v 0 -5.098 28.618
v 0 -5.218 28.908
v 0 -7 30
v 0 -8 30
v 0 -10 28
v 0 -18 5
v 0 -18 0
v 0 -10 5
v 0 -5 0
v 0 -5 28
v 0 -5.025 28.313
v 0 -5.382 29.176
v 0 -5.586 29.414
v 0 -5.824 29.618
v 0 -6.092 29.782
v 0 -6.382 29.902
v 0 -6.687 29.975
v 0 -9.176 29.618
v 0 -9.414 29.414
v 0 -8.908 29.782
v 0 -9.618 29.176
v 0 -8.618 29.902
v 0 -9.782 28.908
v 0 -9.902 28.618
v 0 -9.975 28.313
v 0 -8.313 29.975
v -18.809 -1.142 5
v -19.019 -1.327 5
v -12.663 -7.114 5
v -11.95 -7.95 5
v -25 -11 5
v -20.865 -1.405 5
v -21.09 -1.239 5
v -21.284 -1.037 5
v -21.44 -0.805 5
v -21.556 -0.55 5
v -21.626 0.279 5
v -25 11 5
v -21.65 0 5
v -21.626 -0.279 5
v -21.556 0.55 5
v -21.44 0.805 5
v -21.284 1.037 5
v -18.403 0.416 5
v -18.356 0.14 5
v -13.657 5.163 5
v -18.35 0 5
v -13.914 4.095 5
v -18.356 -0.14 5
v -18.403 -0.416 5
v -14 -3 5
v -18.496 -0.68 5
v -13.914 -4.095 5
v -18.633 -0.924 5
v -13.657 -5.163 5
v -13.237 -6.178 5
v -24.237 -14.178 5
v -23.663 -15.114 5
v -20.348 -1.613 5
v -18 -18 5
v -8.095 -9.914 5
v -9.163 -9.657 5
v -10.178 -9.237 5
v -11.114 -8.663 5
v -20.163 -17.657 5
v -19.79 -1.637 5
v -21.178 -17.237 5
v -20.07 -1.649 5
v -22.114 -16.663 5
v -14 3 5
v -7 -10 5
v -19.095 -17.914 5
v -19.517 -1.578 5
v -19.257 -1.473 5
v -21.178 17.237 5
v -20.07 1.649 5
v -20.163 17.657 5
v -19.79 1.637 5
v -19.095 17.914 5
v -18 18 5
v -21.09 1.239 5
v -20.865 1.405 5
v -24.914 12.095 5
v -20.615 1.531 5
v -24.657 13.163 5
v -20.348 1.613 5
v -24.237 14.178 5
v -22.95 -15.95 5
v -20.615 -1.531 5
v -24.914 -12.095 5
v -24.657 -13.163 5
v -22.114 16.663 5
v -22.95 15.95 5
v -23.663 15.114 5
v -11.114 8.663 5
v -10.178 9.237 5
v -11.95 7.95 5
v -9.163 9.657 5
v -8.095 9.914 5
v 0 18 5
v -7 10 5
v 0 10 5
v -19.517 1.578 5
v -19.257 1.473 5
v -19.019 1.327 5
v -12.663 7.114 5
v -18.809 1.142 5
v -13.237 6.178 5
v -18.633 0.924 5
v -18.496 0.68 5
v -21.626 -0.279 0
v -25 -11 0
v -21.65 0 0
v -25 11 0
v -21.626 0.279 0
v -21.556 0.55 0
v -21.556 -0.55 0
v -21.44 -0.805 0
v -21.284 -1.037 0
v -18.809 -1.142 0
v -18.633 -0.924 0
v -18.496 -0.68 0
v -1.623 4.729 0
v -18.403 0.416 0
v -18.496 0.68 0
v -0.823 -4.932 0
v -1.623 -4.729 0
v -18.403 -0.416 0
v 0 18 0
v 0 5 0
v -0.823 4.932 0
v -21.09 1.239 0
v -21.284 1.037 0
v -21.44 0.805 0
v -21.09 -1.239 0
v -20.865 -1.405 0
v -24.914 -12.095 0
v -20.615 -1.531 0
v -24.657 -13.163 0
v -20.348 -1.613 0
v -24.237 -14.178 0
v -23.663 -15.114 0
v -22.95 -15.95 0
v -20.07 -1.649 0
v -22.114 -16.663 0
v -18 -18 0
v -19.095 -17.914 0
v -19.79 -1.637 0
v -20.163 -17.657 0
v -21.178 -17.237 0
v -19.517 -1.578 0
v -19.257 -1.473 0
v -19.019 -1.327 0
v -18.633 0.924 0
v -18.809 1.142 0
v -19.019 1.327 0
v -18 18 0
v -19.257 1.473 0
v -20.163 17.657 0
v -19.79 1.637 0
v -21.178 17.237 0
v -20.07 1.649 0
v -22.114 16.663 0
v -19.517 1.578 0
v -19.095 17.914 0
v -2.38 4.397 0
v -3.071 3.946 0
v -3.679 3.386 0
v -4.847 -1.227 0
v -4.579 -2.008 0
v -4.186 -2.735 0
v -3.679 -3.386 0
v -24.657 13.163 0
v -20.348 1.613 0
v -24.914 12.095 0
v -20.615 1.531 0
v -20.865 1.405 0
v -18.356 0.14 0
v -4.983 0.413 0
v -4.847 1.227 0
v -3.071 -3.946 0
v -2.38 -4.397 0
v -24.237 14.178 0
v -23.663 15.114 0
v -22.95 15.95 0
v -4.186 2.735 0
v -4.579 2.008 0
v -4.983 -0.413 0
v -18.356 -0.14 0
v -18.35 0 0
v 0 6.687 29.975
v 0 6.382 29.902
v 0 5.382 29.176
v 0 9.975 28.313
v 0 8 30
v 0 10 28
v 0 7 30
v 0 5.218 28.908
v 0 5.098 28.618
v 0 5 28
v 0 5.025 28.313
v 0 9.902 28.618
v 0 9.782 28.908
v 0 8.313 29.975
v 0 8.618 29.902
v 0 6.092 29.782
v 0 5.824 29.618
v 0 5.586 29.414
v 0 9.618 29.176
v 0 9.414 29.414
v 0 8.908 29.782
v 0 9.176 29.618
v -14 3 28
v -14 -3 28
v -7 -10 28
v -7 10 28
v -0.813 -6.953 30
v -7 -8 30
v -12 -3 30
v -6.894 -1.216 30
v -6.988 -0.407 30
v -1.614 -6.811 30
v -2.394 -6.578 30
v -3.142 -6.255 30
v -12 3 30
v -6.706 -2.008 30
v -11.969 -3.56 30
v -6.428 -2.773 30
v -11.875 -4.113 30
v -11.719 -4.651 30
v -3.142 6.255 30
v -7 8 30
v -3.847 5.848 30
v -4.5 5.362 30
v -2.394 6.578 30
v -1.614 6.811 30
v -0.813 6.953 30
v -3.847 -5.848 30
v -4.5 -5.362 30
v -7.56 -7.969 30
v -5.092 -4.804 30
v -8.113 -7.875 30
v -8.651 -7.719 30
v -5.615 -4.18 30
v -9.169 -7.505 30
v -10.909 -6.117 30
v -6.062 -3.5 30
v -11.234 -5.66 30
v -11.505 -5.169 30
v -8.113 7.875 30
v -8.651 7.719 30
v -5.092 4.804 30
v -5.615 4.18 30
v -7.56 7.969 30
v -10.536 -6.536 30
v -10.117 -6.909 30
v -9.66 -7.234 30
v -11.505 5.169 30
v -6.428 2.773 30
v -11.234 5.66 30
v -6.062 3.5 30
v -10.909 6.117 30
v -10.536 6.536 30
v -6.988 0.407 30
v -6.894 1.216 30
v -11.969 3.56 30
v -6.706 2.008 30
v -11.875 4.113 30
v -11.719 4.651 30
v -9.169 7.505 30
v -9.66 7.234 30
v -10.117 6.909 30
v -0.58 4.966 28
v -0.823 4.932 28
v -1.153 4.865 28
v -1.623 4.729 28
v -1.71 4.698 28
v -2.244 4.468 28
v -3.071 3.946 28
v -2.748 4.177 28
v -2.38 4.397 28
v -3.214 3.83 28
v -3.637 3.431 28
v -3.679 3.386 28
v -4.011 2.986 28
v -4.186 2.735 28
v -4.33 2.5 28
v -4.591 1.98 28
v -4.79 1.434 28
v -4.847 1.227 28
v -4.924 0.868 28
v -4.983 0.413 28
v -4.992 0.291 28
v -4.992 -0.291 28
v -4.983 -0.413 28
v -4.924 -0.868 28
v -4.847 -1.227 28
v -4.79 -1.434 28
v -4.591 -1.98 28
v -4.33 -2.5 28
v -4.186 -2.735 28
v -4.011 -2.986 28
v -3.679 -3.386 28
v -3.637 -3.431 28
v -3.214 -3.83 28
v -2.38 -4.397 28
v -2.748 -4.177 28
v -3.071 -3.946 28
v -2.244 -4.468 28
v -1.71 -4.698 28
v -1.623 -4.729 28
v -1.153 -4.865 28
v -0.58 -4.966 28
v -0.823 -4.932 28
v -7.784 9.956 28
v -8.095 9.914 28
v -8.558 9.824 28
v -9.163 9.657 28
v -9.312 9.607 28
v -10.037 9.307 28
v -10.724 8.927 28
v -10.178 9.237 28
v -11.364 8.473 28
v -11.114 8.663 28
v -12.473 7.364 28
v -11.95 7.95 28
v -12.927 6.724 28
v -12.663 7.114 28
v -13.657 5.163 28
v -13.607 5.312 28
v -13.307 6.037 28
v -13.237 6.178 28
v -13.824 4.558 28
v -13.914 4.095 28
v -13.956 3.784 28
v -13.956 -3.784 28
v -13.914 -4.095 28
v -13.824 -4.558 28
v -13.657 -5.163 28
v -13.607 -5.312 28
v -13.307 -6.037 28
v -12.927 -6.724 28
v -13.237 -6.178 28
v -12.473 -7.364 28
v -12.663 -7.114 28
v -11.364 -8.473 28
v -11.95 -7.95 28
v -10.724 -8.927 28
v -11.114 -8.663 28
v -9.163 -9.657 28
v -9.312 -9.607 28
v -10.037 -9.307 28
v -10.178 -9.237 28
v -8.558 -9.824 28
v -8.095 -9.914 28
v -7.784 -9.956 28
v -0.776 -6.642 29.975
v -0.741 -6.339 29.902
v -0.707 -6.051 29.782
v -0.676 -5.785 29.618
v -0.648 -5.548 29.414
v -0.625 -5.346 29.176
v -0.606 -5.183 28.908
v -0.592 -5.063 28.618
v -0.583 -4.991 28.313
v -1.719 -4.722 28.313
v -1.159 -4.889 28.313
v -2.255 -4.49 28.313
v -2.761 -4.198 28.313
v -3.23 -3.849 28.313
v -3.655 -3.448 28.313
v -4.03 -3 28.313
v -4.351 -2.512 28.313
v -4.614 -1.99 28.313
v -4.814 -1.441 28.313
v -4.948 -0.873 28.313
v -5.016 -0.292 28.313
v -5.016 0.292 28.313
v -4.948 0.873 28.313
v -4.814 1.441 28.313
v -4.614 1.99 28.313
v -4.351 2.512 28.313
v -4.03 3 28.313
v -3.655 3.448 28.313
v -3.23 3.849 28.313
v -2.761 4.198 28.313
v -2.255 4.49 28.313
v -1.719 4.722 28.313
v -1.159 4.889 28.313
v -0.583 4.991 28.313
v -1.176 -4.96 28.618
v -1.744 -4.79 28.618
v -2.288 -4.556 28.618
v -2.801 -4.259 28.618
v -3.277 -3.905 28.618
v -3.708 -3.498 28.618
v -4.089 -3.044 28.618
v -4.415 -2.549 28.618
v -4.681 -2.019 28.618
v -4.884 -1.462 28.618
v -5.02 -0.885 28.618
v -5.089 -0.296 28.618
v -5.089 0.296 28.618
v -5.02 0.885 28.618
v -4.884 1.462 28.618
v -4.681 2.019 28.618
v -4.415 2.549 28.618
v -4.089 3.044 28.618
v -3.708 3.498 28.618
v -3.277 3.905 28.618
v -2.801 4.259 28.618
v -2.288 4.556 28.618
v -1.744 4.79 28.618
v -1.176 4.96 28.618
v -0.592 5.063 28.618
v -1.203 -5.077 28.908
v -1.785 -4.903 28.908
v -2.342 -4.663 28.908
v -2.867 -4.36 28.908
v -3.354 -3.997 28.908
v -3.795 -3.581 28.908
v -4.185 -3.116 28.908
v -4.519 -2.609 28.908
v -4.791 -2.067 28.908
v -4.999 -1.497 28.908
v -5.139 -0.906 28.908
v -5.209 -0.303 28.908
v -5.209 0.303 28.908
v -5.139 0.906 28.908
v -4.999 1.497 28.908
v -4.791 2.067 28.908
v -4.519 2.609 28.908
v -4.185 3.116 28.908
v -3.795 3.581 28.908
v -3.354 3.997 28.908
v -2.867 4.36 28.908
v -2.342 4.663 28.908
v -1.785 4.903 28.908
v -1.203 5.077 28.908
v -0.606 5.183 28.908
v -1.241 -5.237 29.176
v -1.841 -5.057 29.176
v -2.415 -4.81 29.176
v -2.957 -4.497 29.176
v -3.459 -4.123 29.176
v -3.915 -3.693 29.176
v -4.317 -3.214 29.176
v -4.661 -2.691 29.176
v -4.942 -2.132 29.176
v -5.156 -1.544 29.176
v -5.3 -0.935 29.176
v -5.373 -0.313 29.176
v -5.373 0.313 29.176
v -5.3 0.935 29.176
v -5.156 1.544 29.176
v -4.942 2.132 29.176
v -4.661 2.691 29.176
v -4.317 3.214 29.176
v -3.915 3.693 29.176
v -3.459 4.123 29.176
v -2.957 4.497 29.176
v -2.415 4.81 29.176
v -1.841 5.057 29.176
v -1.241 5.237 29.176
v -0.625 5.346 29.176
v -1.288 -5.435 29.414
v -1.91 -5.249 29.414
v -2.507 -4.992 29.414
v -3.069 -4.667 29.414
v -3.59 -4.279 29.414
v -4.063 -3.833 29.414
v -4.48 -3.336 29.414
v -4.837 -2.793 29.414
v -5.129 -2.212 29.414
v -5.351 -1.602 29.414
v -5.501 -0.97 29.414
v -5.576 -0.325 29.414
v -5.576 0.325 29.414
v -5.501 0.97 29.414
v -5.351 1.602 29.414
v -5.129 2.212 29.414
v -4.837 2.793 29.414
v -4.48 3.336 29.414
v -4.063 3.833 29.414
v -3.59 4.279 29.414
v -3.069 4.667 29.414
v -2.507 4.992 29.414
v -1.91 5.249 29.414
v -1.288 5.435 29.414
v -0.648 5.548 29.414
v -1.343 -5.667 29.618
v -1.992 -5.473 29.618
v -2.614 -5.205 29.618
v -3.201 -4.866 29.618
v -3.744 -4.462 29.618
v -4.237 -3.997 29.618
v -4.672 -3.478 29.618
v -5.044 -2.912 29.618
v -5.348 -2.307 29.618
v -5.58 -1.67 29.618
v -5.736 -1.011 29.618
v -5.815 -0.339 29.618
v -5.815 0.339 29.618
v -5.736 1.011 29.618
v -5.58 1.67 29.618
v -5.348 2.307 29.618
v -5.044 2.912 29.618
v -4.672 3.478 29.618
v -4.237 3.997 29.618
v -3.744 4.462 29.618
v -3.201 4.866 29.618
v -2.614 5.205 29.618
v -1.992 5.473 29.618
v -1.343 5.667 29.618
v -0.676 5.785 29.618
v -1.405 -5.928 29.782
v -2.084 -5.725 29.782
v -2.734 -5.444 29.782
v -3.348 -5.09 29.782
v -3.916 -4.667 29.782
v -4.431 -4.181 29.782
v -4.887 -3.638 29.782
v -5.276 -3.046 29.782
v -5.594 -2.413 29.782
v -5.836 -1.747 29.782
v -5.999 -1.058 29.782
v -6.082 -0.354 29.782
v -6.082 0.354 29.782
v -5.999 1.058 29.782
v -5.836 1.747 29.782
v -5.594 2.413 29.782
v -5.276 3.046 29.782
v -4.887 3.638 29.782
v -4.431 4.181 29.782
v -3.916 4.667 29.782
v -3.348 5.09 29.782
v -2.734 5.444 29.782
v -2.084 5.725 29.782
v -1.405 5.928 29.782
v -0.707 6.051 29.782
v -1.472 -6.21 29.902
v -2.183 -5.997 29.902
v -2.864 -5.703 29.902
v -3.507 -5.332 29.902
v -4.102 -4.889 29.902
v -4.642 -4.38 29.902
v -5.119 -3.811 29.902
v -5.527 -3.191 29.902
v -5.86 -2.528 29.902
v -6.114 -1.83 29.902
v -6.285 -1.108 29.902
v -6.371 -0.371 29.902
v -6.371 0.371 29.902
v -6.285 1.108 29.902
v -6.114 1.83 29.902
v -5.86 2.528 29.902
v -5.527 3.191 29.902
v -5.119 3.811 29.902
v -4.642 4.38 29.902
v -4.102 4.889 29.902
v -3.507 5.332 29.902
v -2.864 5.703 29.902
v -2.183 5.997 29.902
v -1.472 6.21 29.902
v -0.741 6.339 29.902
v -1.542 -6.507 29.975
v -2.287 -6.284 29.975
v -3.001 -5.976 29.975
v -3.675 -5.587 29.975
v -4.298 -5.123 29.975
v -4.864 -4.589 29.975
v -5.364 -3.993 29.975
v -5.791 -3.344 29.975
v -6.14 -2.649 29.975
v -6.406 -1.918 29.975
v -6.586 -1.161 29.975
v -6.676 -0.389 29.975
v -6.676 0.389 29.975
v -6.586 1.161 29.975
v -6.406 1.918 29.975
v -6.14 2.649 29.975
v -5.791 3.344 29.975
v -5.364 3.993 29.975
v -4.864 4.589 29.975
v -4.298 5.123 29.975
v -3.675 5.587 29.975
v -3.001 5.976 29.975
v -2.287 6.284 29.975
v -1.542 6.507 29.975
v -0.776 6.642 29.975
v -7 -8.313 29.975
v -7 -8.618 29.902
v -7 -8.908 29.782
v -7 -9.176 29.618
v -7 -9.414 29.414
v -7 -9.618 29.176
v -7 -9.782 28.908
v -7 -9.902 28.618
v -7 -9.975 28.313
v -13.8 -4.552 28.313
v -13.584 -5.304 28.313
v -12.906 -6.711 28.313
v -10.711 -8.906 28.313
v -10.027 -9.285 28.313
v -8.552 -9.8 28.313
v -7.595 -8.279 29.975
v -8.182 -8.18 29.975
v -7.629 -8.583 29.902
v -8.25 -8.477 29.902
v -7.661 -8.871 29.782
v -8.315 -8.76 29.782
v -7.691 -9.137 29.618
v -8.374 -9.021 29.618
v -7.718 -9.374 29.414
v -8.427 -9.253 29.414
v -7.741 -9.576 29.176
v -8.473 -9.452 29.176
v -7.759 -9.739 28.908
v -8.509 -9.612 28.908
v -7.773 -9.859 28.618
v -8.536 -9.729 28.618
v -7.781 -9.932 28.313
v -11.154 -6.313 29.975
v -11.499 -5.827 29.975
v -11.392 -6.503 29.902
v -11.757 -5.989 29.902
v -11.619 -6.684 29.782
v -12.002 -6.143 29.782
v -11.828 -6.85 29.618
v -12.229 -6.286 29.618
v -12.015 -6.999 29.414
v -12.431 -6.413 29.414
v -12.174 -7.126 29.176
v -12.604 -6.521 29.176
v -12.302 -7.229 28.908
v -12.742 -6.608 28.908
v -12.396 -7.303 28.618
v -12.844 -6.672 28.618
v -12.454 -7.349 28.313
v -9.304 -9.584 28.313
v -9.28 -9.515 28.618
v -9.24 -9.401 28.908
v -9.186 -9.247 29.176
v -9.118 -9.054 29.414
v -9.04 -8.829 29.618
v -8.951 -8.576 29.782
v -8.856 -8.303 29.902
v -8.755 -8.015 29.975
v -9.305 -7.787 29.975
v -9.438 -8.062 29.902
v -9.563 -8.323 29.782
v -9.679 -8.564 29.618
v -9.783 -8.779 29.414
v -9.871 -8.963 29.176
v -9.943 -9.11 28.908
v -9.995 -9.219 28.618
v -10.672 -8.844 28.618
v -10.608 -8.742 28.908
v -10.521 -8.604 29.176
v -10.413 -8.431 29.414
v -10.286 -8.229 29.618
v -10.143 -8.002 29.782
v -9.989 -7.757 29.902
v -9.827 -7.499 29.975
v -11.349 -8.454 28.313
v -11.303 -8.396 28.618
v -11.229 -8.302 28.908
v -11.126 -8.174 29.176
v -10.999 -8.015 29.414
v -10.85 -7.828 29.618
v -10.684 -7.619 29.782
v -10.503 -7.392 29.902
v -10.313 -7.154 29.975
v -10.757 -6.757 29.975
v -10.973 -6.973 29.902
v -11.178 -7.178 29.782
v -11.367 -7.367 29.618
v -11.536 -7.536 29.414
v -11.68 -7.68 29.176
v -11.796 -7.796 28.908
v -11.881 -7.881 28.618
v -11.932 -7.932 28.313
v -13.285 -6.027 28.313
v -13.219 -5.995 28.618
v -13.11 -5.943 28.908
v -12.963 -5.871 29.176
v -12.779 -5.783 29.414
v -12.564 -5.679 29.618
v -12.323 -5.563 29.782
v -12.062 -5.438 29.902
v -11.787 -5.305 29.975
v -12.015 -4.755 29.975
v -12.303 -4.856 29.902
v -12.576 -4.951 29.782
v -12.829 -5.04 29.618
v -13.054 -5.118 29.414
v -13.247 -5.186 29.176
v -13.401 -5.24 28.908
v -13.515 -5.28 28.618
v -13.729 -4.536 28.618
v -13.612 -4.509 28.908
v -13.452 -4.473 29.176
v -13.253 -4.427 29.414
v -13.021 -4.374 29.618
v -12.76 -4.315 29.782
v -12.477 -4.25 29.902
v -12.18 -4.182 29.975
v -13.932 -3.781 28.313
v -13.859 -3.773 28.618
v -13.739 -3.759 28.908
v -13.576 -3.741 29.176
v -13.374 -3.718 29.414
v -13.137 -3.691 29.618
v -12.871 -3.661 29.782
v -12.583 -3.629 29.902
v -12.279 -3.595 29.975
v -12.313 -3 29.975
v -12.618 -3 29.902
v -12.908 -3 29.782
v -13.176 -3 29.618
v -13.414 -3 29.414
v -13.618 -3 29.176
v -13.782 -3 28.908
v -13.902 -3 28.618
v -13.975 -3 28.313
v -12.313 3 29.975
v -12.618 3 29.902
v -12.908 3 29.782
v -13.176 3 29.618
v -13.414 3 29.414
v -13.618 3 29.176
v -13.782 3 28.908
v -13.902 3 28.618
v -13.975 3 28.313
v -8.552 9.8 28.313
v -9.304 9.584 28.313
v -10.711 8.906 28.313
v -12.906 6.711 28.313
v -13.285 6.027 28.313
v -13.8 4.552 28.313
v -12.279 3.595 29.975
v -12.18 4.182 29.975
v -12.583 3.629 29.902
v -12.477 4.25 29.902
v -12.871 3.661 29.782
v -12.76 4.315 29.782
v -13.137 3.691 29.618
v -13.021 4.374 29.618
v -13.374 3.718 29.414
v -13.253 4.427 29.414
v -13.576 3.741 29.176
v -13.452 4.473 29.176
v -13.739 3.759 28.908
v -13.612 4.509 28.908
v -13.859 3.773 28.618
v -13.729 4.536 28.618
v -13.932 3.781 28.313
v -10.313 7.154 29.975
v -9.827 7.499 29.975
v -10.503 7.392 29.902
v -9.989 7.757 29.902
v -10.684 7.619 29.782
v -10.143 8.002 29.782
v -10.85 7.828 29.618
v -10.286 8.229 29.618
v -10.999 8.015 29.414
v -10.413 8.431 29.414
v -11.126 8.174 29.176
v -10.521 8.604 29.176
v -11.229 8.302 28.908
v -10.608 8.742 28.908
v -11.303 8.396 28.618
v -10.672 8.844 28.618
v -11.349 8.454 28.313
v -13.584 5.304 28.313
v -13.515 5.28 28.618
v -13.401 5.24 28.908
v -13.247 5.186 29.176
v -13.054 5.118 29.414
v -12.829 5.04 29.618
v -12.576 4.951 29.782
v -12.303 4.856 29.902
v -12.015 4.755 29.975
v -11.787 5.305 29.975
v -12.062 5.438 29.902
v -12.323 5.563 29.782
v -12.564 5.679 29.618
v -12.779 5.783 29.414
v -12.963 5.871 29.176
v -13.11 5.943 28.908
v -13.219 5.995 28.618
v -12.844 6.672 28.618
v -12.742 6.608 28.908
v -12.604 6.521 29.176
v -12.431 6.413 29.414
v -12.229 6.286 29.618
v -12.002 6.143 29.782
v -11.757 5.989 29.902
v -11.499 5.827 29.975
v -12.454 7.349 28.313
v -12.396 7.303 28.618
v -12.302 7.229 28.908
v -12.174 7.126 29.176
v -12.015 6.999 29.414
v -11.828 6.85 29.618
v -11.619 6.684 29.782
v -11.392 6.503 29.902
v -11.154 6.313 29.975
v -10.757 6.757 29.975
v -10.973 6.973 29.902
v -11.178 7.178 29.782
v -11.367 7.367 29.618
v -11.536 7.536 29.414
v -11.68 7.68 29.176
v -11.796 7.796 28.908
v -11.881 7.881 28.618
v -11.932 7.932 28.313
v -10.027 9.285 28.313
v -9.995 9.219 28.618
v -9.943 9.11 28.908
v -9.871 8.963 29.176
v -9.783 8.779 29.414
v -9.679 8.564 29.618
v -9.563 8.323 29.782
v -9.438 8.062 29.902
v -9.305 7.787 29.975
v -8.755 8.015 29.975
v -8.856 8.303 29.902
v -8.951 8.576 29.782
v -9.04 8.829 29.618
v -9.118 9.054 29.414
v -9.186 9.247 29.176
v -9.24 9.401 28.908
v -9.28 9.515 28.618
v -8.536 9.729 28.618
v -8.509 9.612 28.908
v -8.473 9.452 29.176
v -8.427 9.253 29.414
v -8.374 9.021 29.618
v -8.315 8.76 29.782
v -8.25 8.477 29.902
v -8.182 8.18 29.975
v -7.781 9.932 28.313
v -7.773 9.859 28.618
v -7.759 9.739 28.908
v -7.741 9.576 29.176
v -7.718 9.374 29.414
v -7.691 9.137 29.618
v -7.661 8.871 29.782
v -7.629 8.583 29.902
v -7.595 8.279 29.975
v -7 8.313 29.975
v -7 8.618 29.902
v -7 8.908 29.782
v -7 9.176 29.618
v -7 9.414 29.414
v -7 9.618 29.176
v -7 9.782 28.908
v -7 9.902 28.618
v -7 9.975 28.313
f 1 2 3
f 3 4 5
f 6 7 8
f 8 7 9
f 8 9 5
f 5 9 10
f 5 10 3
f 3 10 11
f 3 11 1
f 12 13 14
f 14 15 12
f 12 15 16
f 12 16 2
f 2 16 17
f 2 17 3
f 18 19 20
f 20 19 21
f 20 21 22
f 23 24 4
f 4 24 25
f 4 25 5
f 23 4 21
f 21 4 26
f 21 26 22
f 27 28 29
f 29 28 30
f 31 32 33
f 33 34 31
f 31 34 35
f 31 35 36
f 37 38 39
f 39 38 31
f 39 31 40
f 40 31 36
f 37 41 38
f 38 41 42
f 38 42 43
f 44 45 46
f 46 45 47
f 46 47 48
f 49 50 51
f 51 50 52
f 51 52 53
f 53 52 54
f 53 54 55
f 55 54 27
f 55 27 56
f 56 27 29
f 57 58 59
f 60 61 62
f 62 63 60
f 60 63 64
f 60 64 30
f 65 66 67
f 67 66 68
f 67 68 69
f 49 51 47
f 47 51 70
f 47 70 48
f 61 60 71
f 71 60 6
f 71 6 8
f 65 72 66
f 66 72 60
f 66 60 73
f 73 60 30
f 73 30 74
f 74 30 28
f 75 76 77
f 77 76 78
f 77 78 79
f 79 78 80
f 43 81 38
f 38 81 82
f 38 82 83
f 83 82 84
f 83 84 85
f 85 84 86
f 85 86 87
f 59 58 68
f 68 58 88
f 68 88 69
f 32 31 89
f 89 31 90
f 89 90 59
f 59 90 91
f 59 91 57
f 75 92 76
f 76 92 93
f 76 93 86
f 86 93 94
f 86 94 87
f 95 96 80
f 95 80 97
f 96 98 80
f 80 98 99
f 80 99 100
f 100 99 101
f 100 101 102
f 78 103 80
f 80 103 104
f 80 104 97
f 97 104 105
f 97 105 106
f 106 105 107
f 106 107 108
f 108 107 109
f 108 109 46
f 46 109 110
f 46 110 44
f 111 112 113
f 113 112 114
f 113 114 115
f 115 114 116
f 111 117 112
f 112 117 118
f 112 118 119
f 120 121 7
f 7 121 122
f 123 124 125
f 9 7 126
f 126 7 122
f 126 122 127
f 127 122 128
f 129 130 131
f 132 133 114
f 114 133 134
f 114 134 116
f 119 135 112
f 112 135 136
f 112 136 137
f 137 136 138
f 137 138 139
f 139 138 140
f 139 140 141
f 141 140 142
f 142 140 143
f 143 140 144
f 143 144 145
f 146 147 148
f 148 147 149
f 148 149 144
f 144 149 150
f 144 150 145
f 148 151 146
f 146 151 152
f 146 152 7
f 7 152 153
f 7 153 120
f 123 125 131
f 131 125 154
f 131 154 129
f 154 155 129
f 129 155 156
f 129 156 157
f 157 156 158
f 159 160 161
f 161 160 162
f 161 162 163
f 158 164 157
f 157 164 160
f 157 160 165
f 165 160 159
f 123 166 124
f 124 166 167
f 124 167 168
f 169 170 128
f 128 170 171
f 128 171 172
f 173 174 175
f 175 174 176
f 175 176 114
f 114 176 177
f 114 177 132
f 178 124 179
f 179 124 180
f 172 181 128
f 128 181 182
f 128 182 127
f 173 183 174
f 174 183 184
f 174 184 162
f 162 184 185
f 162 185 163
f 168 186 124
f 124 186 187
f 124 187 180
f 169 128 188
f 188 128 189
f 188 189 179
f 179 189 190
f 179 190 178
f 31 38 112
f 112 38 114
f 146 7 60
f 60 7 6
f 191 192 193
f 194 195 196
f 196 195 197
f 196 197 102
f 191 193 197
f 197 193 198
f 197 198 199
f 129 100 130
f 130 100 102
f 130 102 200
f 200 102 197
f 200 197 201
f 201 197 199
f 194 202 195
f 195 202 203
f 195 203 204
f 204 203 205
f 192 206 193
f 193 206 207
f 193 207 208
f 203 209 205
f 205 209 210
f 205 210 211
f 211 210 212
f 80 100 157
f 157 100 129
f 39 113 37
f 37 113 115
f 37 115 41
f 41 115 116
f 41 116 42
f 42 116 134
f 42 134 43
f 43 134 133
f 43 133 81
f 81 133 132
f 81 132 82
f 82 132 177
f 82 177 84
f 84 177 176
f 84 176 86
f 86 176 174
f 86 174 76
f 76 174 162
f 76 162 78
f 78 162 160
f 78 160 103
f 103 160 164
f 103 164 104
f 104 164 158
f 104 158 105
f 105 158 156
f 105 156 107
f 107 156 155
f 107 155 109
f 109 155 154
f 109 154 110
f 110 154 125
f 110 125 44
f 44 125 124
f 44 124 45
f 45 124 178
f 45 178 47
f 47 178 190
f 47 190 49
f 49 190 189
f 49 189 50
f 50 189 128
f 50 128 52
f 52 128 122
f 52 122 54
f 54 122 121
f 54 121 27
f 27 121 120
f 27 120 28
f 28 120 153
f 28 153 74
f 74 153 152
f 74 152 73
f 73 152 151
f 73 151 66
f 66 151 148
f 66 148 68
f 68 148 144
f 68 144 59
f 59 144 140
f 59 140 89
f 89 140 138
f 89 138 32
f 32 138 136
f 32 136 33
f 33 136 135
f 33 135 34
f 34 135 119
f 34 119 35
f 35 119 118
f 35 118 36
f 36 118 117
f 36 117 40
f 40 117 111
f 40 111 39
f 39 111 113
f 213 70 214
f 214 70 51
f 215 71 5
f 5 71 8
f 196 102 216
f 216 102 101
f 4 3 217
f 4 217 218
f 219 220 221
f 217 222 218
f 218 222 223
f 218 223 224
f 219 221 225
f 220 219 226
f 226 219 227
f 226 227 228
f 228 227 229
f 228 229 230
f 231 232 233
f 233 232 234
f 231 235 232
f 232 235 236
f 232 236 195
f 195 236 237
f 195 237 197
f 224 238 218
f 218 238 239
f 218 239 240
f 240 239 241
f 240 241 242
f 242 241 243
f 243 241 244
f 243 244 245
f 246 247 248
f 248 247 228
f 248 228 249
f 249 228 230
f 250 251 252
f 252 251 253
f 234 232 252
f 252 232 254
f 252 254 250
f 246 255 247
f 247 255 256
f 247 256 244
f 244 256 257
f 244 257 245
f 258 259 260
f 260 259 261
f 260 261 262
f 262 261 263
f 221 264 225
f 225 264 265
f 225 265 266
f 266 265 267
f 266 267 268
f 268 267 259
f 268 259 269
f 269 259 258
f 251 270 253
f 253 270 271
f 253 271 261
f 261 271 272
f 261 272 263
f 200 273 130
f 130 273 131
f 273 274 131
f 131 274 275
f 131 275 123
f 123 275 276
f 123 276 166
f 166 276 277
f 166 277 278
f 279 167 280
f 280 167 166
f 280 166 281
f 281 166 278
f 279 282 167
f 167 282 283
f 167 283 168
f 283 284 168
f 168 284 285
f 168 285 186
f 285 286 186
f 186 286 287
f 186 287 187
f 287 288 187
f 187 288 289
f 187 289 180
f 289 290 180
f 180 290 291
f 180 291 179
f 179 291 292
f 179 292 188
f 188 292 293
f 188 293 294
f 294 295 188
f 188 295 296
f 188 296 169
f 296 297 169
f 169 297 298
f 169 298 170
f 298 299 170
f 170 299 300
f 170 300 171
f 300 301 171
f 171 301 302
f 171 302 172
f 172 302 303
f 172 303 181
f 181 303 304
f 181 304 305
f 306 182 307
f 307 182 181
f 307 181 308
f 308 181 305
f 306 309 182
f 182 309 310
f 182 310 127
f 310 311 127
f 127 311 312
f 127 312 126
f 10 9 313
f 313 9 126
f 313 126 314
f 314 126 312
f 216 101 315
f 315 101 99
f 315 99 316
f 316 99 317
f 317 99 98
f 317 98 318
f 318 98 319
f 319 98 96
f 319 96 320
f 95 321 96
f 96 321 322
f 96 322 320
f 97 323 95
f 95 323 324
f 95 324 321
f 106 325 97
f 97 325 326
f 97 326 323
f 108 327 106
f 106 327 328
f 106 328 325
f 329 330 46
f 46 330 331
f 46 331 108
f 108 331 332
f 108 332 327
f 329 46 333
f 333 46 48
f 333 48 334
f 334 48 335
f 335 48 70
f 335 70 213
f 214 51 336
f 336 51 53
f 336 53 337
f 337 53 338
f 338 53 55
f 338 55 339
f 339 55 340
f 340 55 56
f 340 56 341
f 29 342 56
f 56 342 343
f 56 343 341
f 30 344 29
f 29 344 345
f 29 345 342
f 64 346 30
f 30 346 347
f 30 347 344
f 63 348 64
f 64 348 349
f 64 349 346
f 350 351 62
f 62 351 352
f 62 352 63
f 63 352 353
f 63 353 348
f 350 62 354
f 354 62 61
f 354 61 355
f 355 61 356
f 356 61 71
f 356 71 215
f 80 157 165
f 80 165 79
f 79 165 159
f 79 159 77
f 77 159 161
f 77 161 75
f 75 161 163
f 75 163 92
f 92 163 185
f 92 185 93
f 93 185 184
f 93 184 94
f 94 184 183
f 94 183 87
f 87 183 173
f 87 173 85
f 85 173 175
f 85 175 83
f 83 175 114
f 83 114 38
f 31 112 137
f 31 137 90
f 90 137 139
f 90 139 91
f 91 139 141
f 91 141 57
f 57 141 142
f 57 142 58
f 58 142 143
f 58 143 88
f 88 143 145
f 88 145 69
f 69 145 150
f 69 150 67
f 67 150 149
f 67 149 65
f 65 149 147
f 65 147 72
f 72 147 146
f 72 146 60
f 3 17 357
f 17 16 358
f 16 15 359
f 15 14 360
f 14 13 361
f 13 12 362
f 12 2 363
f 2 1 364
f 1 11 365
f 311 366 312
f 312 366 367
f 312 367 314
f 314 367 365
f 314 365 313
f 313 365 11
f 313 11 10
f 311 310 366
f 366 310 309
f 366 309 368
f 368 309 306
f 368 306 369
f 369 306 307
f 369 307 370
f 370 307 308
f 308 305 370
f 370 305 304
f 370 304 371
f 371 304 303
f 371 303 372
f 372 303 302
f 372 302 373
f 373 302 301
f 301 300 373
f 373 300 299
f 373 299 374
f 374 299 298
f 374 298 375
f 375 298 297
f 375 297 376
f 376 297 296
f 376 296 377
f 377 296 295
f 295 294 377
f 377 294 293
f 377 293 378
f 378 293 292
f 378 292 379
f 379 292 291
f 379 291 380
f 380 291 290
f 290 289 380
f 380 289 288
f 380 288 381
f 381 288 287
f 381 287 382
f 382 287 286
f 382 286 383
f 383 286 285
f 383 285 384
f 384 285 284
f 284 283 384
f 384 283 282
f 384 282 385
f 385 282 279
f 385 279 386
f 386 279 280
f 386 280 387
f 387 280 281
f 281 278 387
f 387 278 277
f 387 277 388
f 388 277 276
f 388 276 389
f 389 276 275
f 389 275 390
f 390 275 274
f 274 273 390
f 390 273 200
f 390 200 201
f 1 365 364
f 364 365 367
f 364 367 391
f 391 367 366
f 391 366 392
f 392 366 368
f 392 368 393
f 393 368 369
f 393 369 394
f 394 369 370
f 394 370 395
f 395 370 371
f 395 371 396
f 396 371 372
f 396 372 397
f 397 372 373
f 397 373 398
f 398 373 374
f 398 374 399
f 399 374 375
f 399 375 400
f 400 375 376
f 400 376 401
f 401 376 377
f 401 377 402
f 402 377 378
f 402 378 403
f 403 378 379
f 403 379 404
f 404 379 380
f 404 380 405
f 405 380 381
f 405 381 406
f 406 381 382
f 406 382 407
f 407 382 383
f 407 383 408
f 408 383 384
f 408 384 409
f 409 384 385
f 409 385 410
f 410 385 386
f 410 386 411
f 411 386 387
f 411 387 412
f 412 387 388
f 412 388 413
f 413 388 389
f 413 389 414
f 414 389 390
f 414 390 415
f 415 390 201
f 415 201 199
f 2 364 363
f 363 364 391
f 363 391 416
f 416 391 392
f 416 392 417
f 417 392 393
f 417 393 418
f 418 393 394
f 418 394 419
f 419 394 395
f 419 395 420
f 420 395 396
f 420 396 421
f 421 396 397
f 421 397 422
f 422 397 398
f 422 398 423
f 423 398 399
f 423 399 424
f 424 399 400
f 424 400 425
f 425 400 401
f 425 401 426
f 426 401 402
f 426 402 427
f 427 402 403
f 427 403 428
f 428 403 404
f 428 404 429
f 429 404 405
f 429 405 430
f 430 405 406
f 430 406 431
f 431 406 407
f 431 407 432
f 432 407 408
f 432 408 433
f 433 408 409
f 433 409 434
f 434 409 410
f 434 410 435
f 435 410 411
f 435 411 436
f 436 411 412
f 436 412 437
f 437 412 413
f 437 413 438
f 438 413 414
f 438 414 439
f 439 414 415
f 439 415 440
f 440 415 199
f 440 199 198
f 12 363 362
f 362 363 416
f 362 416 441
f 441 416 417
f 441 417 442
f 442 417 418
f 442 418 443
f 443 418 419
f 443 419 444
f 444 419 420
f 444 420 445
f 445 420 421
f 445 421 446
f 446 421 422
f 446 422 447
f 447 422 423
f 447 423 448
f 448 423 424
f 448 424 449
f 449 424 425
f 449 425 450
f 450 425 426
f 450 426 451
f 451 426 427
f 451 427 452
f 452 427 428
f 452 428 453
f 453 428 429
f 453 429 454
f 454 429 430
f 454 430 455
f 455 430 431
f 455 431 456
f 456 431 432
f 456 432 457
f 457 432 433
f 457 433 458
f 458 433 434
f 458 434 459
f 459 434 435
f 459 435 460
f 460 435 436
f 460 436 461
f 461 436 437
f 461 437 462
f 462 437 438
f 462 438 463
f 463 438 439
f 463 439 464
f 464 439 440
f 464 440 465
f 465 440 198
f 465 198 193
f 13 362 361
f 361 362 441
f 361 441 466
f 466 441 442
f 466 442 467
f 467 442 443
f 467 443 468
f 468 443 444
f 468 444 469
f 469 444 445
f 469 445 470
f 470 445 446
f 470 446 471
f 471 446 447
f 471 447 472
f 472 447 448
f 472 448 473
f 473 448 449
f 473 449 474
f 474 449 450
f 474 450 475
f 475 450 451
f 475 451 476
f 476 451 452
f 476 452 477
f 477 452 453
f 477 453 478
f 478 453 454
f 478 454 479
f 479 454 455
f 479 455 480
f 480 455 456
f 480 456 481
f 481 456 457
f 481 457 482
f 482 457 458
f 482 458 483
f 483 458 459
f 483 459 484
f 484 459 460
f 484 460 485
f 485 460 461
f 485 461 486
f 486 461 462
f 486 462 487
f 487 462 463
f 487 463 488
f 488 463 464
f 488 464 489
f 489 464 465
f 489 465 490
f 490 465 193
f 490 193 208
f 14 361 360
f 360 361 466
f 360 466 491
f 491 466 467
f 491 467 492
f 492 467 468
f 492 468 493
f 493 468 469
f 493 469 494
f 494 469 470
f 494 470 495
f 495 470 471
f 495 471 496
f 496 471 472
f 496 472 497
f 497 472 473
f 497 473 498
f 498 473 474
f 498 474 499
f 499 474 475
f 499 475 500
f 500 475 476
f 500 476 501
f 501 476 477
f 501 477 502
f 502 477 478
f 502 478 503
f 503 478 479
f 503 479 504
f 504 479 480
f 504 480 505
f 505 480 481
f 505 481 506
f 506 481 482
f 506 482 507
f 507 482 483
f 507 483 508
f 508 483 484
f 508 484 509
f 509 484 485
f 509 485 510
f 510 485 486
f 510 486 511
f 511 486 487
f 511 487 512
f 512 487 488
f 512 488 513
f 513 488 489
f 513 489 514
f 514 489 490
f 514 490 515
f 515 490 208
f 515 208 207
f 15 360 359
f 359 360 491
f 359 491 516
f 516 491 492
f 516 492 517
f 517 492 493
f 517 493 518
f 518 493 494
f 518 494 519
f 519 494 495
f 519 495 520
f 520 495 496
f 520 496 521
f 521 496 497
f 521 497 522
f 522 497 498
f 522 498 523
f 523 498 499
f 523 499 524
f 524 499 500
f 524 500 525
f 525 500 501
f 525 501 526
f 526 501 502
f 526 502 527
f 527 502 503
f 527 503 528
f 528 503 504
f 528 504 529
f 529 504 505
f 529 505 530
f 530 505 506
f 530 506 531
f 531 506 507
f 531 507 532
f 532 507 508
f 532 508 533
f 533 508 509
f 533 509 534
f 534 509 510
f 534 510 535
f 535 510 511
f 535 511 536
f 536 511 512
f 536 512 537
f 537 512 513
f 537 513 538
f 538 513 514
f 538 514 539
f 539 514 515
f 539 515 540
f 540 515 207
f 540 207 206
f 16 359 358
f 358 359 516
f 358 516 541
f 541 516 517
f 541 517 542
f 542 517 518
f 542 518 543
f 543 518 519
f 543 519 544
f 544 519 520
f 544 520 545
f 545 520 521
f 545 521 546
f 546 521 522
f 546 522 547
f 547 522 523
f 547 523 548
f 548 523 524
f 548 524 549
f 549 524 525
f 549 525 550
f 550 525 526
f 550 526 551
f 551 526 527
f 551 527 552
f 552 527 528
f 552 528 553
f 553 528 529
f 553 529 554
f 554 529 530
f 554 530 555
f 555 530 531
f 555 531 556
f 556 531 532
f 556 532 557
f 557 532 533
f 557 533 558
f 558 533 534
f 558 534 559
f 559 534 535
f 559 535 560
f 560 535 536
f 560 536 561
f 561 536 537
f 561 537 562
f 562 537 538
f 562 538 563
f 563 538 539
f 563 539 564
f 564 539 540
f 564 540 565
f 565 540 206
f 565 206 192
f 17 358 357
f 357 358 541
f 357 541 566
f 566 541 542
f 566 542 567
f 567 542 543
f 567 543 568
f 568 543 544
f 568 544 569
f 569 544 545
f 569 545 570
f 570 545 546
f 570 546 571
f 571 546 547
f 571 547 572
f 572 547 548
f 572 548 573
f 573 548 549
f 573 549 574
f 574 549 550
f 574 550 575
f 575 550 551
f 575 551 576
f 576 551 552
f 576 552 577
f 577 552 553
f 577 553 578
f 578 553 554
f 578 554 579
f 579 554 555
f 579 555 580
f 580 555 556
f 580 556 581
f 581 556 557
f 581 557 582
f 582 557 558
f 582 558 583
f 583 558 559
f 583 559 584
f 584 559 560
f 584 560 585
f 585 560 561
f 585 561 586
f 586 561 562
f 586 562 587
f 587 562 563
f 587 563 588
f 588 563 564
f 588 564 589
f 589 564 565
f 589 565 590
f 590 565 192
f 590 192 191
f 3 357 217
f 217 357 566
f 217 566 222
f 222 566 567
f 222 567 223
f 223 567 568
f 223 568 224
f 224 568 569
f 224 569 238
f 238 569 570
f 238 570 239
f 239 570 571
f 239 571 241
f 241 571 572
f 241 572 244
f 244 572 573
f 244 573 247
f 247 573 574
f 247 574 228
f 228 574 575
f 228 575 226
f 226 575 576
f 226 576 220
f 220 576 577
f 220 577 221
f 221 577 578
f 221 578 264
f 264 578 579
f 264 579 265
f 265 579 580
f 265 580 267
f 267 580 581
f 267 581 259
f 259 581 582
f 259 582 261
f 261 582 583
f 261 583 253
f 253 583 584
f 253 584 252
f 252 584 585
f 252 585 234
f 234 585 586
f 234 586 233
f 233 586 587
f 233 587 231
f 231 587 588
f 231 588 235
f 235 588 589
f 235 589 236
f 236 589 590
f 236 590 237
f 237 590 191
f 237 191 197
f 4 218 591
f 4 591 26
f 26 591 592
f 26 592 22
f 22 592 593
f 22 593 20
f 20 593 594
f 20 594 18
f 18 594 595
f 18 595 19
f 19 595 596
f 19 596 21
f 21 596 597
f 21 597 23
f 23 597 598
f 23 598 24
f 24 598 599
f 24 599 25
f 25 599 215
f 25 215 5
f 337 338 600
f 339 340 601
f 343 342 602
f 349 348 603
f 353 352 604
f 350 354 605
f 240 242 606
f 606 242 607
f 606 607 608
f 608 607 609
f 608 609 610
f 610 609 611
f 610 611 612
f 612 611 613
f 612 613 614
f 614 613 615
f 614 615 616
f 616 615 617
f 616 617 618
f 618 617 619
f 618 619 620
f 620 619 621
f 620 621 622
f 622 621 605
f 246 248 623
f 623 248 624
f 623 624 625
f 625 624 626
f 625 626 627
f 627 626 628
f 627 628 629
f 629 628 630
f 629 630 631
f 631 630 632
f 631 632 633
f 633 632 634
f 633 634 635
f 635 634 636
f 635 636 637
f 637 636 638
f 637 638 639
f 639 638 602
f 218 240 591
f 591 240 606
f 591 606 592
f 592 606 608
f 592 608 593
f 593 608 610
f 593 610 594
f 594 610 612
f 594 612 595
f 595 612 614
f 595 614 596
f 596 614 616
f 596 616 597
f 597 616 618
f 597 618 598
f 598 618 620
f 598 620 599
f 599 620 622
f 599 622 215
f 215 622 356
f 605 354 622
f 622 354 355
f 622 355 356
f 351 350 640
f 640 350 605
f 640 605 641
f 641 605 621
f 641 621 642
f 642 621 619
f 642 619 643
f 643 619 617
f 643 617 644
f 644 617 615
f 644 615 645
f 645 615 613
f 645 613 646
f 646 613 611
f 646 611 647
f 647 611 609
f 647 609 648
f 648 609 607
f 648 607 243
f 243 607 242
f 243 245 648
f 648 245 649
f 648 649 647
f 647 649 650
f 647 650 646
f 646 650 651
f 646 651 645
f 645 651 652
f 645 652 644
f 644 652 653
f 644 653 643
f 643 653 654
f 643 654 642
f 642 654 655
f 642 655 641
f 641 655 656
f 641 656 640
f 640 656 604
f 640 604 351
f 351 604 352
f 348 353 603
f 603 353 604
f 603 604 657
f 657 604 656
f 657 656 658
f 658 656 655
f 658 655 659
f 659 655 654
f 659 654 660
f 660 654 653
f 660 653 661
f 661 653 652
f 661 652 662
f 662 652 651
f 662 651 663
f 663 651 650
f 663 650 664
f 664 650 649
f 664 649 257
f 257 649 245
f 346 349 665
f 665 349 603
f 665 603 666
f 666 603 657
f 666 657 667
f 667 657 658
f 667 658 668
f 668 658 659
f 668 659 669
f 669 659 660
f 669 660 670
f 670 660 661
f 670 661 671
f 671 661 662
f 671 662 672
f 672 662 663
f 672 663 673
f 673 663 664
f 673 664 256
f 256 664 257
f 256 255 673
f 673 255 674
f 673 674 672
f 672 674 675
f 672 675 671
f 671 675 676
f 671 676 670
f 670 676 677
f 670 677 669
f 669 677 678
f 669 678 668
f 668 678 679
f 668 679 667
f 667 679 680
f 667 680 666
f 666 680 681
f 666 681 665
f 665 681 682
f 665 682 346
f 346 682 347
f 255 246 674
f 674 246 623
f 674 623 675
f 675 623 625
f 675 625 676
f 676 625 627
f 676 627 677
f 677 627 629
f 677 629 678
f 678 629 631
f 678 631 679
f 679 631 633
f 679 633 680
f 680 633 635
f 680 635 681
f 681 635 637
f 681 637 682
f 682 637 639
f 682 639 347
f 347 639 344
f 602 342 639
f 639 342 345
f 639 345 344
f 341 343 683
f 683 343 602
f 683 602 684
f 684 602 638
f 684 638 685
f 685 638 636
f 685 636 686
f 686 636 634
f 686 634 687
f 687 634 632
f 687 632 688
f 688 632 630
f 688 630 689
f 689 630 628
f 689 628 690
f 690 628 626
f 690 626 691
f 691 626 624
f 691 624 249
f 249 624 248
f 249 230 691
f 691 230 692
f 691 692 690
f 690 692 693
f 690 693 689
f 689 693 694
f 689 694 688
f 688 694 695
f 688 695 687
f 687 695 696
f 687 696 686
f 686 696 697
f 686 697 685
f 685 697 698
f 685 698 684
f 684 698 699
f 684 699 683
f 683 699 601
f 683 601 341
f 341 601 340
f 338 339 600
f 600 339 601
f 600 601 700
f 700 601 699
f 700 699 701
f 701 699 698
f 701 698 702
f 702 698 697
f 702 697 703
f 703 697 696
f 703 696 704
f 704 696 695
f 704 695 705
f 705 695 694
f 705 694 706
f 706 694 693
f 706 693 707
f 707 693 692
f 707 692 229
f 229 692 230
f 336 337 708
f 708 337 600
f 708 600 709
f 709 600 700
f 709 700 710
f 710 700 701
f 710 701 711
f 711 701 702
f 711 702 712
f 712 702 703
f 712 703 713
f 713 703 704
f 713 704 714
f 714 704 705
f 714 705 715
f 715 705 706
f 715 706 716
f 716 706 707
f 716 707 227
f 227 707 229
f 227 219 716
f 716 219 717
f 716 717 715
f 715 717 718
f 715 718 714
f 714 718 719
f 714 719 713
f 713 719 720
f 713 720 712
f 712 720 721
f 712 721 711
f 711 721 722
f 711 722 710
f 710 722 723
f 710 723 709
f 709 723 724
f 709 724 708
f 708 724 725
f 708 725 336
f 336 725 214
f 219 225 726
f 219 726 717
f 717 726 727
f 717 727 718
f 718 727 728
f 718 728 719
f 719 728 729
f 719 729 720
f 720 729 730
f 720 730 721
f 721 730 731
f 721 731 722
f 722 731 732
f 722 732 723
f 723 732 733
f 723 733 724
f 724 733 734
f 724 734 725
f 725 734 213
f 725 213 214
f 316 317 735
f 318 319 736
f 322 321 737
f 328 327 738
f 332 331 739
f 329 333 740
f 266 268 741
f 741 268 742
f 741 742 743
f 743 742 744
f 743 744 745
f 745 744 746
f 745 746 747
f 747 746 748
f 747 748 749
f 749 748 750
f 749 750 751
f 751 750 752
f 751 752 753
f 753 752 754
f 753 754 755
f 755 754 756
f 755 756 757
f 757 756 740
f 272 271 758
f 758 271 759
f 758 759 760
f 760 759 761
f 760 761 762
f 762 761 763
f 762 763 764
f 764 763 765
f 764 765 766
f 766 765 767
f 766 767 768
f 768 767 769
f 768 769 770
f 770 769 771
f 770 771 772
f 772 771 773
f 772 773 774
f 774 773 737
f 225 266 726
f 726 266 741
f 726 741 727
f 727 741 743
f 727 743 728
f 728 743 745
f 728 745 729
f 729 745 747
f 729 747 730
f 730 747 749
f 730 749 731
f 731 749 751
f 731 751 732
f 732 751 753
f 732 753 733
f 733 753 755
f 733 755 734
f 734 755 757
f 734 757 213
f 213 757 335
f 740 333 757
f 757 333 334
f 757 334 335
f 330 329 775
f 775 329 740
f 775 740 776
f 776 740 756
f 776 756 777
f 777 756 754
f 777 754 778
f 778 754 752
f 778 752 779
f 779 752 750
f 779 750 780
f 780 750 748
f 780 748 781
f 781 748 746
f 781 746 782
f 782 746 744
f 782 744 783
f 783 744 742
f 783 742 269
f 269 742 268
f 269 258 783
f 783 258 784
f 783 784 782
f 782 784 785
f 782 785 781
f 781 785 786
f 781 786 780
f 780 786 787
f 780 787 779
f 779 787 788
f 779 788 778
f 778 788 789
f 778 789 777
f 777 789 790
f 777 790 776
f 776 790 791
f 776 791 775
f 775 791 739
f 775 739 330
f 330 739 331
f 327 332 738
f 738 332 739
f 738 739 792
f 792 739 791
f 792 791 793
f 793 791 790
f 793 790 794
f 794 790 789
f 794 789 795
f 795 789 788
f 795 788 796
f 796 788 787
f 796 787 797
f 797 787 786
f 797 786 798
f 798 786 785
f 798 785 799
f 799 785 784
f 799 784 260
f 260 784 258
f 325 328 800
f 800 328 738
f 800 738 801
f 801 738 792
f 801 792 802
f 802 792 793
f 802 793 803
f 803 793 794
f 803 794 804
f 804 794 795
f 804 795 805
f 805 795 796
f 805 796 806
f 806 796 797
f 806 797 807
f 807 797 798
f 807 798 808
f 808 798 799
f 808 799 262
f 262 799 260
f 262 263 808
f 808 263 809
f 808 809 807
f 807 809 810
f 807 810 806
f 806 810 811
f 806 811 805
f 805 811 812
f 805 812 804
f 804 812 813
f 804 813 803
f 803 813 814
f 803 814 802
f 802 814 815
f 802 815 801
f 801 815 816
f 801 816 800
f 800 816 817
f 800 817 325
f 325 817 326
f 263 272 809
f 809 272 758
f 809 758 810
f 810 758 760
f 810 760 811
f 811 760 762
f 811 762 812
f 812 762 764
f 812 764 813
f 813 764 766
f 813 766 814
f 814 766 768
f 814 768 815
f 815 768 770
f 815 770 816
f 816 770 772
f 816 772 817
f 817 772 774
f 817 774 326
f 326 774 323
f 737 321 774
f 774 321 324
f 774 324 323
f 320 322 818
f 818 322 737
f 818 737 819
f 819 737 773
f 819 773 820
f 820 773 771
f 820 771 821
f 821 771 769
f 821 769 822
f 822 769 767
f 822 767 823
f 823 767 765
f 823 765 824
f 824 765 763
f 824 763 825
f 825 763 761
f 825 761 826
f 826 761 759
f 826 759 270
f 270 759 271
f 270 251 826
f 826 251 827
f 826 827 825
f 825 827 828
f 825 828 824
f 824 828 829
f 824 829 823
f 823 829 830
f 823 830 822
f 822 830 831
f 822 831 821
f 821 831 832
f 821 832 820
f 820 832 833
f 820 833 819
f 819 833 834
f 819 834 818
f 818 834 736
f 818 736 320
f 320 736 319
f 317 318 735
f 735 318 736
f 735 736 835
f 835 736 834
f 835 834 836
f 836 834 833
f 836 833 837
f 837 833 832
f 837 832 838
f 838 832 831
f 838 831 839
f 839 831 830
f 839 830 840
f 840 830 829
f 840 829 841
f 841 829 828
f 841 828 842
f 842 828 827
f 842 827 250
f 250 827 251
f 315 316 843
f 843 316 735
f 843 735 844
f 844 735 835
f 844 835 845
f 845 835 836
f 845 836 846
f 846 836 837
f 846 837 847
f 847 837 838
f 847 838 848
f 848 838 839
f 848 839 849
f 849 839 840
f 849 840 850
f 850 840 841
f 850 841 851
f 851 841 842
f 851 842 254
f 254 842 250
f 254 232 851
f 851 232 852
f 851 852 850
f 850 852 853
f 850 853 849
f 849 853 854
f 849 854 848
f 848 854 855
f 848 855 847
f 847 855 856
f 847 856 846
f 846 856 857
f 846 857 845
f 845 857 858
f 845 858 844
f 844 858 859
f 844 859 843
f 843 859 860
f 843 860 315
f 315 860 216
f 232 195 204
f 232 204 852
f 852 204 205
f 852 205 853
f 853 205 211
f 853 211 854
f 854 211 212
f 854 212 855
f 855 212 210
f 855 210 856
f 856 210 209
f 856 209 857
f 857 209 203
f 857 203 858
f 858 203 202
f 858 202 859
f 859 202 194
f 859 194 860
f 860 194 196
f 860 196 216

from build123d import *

# Parameters (mm, degrees)
SKETCH_1_W          = 25
SKETCH_1_H          = 36
SKETCH_1_R          = 1.65
EXTRUDE_1_DEPTH     = 5
SKETCH_2_W          = 14
SKETCH_2_H          = 20
EXTRUDE_2_DEPTH     = 25
SKETCH_3_R          = 5
CUT_EXTRUDE_1_DEPTH = 35
FILLET_1_R          = 7
FILLET_2_R          = 7
FILLET_3_R          = 7
FILLET_4_R          = 7
FILLET_5_R          = 2


with BuildPart() as part:
    # ｽｹｯﾁ1 → ﾎﾞｽ - 押し出し1 (new body)
    with BuildSketch(Plane.XY):
        with Locations((-12.5, 0)):
            Rectangle(SKETCH_1_W, SKETCH_1_H)
        with Locations((-20, 0)):
            Circle(SKETCH_1_R, mode=Mode.SUBTRACT)
    extrude(amount=EXTRUDE_1_DEPTH)

    # ｽｹｯﾁ2 → ﾎﾞｽ - 押し出し2 (add)
    with BuildSketch(Plane.XY.offset(5)):
        with Locations((-7, 0)):
            Rectangle(SKETCH_2_W, SKETCH_2_H)
    extrude(amount=EXTRUDE_2_DEPTH)

    # ｽｹｯﾁ3 → ｶｯﾄ - 押し出し1 (cut)
    with BuildSketch(Plane.XY.offset(30)):
        Circle(SKETCH_3_R)
    extrude(amount=-CUT_EXTRUDE_1_DEPTH, mode=Mode.SUBTRACT)

    # ﾌｨﾚｯﾄ1
    fillet_1_edges = [part.edges().sort_by_distance(p)[0] for p in [
        (-14, 10, 17.5),
    ]]
    fillet(fillet_1_edges, radius=FILLET_1_R)

    # ﾌｨﾚｯﾄ2
    fillet_2_edges = [part.edges().sort_by_distance(p)[0] for p in [
        (-14, -10, 17.5),
    ]]
    fillet(fillet_2_edges, radius=FILLET_2_R)

    # ﾌｨﾚｯﾄ3
    fillet_3_edges = [part.edges().sort_by_distance(p)[0] for p in [
        (-25, 18, 2.5),
    ]]
    fillet(fillet_3_edges, radius=FILLET_3_R)

    # ﾌｨﾚｯﾄ4
    fillet_4_edges = [part.edges().sort_by_distance(p)[0] for p in [
        (-25, -18, 2.5),
    ]]
    fillet(fillet_4_edges, radius=FILLET_4_R)

    # ﾌｨﾚｯﾄ5
    fillet_5_edges = [part.edges().sort_by_distance(p)[0] for p in [
        (-3.5, 10, 30),
        (-5, 0, 30),
        (-14, 0, 30),
        (-11.949747468, 7.949747468, 30),
        (-3.5, -10, 30),
        (-11.949747468, -7.949747468, 30),
    ]]
    fillet(fillet_5_edges, radius=FILLET_5_R)


solid = part.part
